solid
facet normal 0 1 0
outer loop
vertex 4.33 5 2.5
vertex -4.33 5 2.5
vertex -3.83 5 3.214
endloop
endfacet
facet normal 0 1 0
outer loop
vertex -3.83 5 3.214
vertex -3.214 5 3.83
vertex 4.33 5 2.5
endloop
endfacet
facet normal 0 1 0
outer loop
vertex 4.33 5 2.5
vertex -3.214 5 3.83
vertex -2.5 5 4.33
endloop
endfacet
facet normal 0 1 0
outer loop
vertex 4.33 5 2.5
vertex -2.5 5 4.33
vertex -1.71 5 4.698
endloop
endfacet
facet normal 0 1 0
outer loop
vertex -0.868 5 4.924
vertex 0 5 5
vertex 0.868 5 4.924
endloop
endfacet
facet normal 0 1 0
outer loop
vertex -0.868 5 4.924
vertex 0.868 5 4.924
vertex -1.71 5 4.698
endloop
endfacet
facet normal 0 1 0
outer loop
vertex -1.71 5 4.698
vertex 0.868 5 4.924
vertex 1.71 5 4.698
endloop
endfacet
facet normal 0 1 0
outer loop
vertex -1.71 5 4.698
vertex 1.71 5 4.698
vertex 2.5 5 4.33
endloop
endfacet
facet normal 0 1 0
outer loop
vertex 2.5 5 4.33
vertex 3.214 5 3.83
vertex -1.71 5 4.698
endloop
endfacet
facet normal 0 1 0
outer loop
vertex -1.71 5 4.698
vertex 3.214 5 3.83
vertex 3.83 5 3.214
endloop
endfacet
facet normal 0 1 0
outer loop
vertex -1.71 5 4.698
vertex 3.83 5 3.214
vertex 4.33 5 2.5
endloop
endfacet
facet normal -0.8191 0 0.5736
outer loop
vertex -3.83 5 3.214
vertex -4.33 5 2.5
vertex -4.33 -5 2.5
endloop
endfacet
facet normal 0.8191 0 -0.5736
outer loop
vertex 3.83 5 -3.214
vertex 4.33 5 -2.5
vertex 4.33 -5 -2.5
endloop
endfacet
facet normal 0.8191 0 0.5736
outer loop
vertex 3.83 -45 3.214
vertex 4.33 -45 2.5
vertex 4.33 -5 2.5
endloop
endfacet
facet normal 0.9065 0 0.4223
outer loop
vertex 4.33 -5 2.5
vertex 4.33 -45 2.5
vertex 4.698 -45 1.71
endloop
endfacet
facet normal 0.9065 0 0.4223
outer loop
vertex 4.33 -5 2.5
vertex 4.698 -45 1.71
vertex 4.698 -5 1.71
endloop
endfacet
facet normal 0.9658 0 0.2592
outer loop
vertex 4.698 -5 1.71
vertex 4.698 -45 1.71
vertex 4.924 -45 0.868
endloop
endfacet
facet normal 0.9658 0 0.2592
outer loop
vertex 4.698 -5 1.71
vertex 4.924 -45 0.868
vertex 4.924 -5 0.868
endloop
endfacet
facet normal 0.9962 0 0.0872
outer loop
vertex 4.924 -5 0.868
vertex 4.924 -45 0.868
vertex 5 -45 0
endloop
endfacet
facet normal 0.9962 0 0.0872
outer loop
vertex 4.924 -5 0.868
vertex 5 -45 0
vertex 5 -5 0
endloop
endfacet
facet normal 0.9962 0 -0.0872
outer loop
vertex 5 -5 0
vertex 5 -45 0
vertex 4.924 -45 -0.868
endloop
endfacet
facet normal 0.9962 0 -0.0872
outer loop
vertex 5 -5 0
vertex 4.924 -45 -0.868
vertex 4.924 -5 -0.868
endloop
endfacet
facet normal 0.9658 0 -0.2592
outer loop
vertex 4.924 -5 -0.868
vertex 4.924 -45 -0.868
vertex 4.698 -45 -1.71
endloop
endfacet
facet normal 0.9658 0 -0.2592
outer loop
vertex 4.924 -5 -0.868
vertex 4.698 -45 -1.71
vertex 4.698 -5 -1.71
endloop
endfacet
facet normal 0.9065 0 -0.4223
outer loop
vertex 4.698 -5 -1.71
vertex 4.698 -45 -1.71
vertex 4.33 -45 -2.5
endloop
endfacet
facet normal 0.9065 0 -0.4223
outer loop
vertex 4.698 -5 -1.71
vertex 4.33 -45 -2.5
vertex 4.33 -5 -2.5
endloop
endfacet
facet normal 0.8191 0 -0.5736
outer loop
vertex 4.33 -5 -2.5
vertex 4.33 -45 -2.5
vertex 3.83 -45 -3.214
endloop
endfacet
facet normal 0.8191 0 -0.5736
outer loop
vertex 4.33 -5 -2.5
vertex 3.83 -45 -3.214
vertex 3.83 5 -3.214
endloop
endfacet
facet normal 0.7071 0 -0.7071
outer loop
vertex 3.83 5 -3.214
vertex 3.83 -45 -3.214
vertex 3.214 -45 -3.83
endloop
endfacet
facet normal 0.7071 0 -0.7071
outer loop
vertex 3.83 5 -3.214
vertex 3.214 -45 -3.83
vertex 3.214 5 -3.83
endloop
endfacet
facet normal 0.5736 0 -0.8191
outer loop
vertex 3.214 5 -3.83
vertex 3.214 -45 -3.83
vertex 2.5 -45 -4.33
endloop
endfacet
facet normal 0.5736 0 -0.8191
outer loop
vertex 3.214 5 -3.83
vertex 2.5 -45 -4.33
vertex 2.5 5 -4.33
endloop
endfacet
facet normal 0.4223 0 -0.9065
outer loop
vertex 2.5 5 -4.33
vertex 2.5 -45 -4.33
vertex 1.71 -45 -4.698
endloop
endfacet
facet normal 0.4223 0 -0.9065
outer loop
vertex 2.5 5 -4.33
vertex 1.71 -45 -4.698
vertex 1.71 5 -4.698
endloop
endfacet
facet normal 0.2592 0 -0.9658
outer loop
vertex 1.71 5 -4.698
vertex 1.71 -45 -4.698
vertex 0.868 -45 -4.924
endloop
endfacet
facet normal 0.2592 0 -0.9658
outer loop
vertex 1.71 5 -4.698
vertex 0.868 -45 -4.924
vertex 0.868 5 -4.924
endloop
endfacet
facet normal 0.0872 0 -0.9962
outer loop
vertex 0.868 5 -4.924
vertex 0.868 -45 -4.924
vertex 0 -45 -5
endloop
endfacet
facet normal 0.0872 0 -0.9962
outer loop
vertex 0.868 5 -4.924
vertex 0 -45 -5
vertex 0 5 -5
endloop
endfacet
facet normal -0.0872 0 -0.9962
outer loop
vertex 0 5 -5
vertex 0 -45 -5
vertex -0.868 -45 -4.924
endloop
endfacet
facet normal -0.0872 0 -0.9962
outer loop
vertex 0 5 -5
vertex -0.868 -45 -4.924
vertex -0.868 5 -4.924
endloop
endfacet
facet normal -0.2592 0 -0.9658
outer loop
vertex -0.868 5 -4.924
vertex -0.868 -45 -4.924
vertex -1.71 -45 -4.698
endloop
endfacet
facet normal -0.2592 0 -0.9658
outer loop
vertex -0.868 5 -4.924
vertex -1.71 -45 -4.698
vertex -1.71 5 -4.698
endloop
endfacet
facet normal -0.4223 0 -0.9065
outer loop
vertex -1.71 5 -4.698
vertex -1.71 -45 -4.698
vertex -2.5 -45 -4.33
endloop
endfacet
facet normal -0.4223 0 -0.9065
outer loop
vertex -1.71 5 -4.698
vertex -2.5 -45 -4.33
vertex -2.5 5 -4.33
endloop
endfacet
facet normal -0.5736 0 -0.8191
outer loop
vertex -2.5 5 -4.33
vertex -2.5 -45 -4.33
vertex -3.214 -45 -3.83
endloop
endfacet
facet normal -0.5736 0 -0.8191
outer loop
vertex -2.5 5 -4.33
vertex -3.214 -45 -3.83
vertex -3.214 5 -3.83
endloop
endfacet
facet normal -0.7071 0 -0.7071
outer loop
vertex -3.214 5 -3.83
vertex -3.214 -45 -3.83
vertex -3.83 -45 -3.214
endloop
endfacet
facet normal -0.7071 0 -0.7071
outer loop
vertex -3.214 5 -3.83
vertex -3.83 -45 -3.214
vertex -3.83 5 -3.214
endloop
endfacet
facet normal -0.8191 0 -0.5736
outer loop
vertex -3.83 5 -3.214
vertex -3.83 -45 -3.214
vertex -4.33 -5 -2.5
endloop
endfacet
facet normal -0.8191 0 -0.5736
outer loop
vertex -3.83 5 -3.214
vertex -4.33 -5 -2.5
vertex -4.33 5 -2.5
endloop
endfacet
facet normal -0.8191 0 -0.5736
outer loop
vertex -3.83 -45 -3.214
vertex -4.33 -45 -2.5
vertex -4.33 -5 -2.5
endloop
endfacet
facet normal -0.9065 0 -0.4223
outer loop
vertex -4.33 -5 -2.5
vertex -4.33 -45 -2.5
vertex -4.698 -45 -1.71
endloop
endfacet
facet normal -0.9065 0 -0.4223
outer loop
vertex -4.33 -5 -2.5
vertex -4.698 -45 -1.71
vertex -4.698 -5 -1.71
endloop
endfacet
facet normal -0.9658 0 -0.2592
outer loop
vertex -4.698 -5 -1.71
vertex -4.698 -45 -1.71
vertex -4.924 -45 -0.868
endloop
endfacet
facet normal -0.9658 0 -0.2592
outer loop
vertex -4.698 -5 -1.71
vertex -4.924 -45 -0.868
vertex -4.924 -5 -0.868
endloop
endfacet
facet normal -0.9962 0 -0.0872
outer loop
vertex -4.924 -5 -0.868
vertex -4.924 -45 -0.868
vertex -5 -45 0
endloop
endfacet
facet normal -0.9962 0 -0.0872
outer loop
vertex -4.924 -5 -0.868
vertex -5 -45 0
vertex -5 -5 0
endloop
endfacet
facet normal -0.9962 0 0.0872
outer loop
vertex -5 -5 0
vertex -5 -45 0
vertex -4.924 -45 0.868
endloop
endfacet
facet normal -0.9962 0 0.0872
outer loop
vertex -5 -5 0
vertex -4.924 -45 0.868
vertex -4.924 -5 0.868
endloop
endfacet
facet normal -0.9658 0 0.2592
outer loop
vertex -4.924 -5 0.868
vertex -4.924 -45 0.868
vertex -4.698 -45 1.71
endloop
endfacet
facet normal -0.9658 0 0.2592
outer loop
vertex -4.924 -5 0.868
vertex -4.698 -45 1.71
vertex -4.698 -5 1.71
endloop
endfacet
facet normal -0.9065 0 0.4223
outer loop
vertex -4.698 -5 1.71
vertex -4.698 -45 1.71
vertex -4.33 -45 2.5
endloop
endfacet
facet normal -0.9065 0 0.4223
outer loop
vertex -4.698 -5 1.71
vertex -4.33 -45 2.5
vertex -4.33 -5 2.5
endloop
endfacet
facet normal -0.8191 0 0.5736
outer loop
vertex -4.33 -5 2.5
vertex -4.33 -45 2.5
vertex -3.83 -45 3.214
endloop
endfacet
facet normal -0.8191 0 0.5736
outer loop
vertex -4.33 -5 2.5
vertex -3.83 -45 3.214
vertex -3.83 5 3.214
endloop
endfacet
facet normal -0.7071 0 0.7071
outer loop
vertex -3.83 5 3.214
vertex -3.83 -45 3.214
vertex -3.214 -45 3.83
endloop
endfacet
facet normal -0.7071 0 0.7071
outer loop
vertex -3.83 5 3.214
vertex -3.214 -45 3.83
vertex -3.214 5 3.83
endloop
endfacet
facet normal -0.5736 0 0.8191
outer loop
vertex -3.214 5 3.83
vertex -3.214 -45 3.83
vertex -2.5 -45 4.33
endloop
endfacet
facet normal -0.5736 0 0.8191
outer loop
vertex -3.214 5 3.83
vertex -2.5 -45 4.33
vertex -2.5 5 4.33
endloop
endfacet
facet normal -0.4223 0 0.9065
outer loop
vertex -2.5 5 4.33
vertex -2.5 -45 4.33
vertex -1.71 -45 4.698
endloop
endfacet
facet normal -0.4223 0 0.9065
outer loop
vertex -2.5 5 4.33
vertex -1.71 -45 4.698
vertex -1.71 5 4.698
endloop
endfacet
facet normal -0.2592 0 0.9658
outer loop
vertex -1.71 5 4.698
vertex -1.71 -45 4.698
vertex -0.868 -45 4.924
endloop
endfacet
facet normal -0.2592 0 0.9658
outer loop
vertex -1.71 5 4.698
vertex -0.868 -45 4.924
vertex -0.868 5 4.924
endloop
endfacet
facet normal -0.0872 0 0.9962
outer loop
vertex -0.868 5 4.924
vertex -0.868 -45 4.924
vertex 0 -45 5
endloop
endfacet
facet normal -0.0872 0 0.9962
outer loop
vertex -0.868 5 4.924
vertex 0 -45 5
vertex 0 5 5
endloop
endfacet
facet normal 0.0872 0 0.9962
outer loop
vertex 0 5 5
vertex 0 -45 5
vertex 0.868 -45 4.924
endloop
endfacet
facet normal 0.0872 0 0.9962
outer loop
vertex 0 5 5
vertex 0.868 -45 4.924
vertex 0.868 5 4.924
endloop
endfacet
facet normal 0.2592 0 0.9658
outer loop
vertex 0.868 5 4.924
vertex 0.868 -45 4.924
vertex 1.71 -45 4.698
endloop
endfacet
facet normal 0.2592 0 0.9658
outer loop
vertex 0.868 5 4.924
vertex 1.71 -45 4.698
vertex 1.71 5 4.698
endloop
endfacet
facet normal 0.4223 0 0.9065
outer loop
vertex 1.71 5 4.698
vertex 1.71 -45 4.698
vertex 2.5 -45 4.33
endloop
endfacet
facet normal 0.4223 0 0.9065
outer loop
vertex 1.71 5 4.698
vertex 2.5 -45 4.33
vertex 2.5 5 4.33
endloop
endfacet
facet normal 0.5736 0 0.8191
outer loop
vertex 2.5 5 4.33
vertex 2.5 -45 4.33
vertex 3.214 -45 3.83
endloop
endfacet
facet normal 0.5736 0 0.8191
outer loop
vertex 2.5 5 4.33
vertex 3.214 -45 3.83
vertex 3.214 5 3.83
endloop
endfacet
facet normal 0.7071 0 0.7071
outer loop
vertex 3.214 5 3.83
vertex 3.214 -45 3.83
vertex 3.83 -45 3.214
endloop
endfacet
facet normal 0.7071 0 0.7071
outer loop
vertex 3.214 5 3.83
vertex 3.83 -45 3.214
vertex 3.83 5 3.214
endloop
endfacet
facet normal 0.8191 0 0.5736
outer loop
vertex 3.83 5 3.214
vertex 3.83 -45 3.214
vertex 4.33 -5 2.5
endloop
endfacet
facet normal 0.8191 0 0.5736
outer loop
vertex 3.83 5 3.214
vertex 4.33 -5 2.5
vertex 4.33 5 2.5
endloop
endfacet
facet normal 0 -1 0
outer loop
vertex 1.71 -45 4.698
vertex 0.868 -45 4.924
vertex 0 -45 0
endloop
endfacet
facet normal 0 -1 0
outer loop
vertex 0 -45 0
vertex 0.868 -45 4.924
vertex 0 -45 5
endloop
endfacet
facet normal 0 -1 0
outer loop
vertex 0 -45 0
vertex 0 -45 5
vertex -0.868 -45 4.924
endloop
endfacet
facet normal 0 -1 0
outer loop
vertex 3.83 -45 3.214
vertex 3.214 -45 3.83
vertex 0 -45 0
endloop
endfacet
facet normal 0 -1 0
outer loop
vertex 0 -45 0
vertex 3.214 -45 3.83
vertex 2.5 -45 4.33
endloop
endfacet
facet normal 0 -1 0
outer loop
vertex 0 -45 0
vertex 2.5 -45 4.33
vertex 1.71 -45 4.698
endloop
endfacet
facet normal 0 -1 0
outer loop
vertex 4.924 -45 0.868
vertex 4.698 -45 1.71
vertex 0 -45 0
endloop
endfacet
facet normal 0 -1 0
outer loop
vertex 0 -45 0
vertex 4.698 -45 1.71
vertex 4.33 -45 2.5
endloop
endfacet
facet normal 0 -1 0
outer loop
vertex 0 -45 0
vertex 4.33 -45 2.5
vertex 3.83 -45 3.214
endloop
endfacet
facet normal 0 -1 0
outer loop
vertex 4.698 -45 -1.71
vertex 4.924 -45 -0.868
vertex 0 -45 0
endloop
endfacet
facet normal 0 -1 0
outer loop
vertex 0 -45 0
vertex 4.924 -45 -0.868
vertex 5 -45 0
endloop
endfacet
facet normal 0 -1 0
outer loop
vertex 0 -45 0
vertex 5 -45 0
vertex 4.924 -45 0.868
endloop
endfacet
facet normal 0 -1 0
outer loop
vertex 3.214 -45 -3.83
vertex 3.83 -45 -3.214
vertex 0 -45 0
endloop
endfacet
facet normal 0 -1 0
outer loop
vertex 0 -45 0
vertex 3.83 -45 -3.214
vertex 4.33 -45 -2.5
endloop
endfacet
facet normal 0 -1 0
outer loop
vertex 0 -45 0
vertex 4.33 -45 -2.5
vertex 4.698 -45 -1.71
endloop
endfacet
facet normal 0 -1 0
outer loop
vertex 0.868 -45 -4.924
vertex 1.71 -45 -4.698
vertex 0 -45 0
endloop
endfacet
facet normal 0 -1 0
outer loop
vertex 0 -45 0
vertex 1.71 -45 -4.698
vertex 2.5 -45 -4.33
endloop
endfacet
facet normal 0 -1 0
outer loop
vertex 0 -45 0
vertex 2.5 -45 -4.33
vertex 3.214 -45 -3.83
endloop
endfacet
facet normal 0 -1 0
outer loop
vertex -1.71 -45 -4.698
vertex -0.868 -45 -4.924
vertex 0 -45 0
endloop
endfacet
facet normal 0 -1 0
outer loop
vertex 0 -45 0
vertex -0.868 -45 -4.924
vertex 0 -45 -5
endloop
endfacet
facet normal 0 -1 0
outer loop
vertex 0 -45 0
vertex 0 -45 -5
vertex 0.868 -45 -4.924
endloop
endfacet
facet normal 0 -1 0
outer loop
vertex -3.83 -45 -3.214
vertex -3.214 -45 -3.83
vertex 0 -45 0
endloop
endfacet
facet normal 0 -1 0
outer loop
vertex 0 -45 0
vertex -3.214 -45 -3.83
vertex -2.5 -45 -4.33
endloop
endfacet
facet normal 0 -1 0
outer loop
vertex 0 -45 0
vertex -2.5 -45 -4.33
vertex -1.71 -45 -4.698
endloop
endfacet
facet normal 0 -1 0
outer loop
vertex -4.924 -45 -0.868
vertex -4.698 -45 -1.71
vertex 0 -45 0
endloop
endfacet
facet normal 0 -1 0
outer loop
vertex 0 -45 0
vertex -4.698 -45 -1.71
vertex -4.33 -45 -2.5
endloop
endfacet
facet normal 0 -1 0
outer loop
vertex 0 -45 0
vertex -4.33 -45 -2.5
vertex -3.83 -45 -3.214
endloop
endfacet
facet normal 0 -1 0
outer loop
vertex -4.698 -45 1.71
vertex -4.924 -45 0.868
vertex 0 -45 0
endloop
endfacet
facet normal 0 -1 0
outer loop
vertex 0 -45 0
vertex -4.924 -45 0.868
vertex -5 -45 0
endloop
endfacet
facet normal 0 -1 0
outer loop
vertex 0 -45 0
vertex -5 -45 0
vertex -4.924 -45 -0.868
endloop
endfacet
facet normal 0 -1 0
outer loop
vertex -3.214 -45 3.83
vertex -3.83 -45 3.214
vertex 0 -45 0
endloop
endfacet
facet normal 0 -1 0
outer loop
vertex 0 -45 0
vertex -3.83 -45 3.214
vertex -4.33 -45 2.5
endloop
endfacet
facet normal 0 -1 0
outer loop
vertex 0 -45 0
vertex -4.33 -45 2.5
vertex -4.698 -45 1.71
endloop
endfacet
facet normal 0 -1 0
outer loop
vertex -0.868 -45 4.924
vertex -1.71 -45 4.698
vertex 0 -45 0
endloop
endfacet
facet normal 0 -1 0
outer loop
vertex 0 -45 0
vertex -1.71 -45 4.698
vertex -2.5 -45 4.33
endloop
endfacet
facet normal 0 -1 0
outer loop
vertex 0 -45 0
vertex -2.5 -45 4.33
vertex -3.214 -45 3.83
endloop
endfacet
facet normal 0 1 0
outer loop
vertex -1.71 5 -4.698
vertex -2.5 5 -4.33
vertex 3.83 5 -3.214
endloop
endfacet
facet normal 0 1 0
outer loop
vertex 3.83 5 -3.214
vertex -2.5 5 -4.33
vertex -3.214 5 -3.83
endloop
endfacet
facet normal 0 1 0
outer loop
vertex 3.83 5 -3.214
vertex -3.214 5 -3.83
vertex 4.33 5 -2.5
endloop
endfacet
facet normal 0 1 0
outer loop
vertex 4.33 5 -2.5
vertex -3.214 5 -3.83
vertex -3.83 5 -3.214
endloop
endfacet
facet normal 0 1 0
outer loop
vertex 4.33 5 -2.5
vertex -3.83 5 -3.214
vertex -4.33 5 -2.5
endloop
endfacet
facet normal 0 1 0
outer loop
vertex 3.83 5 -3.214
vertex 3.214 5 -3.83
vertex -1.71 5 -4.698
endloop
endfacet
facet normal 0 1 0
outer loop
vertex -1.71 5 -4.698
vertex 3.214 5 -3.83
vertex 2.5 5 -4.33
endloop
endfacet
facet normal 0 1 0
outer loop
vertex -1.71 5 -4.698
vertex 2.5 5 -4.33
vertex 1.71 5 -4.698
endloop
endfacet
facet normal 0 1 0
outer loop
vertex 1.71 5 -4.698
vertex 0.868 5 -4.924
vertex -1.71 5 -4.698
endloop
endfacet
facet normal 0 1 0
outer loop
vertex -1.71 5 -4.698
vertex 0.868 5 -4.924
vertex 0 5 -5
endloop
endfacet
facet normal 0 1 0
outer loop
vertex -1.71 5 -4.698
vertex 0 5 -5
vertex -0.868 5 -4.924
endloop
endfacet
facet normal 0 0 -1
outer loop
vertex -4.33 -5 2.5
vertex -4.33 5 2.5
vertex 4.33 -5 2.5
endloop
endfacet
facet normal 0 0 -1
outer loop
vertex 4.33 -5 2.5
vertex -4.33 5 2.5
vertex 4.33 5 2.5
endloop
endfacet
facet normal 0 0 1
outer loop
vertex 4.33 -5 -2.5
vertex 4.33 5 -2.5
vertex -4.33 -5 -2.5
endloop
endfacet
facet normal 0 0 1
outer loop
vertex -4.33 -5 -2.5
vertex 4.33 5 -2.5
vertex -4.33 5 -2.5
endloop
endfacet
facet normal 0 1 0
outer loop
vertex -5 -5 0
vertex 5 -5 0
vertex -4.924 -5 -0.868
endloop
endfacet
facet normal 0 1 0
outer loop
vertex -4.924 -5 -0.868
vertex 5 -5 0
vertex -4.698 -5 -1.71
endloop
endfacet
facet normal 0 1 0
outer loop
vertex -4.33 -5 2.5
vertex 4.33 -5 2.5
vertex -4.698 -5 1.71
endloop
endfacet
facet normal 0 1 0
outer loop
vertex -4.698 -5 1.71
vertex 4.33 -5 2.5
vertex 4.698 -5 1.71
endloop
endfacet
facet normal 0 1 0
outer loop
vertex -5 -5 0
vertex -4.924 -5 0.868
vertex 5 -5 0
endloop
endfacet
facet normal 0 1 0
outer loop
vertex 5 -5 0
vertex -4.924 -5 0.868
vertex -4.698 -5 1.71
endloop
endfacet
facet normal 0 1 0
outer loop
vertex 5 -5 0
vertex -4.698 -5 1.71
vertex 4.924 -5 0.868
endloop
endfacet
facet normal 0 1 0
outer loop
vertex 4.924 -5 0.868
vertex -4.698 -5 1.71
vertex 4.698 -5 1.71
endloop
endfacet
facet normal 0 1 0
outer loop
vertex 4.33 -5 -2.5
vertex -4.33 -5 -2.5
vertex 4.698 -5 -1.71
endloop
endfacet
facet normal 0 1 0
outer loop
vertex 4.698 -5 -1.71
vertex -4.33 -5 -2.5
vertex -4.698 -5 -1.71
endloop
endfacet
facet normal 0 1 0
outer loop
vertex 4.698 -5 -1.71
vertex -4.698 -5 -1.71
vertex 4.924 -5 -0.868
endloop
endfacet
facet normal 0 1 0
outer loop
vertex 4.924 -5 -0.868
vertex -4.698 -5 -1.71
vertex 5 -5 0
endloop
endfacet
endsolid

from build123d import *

# Parameters (mm, degrees)
SKETCH1_R                = 5
BOSS_EXTRUDE1_DEPTH      = 5
BOSS_EXTRUDE1_DEPTH_BACK = 45
SKETCH2_W                = 5
SKETCH2_H                = 10
CUT_EXTRUDE1_DEPTH       = 6
CUT_EXTRUDE1_DEPTH_BACK  = 6


with BuildPart() as part:
    # Sketch1 → Boss-Extrude1 (new body, two sides)
    with BuildSketch(Plane(origin=(0, 0, 0), x_dir=(1, 0, 0), z_dir=(0, 1, 0))) as boss_extrude1_sk:
        Circle(SKETCH1_R)
    extrude(amount=BOSS_EXTRUDE1_DEPTH)
    extrude(boss_extrude1_sk.sketch, amount=-BOSS_EXTRUDE1_DEPTH_BACK)

    # Sketch2 → Cut-Extrude1 (cut, two sides)
    with BuildSketch(Plane(origin=(0, 0, 0), x_dir=(0, 0, -1), z_dir=(1, 0, 0))) as cut_extrude1_sk:
        Rectangle(SKETCH2_W, SKETCH2_H)
    extrude(amount=CUT_EXTRUDE1_DEPTH, mode=Mode.SUBTRACT)
    extrude(cut_extrude1_sk.sketch, amount=-CUT_EXTRUDE1_DEPTH_BACK, mode=Mode.SUBTRACT)


solid = part.part
